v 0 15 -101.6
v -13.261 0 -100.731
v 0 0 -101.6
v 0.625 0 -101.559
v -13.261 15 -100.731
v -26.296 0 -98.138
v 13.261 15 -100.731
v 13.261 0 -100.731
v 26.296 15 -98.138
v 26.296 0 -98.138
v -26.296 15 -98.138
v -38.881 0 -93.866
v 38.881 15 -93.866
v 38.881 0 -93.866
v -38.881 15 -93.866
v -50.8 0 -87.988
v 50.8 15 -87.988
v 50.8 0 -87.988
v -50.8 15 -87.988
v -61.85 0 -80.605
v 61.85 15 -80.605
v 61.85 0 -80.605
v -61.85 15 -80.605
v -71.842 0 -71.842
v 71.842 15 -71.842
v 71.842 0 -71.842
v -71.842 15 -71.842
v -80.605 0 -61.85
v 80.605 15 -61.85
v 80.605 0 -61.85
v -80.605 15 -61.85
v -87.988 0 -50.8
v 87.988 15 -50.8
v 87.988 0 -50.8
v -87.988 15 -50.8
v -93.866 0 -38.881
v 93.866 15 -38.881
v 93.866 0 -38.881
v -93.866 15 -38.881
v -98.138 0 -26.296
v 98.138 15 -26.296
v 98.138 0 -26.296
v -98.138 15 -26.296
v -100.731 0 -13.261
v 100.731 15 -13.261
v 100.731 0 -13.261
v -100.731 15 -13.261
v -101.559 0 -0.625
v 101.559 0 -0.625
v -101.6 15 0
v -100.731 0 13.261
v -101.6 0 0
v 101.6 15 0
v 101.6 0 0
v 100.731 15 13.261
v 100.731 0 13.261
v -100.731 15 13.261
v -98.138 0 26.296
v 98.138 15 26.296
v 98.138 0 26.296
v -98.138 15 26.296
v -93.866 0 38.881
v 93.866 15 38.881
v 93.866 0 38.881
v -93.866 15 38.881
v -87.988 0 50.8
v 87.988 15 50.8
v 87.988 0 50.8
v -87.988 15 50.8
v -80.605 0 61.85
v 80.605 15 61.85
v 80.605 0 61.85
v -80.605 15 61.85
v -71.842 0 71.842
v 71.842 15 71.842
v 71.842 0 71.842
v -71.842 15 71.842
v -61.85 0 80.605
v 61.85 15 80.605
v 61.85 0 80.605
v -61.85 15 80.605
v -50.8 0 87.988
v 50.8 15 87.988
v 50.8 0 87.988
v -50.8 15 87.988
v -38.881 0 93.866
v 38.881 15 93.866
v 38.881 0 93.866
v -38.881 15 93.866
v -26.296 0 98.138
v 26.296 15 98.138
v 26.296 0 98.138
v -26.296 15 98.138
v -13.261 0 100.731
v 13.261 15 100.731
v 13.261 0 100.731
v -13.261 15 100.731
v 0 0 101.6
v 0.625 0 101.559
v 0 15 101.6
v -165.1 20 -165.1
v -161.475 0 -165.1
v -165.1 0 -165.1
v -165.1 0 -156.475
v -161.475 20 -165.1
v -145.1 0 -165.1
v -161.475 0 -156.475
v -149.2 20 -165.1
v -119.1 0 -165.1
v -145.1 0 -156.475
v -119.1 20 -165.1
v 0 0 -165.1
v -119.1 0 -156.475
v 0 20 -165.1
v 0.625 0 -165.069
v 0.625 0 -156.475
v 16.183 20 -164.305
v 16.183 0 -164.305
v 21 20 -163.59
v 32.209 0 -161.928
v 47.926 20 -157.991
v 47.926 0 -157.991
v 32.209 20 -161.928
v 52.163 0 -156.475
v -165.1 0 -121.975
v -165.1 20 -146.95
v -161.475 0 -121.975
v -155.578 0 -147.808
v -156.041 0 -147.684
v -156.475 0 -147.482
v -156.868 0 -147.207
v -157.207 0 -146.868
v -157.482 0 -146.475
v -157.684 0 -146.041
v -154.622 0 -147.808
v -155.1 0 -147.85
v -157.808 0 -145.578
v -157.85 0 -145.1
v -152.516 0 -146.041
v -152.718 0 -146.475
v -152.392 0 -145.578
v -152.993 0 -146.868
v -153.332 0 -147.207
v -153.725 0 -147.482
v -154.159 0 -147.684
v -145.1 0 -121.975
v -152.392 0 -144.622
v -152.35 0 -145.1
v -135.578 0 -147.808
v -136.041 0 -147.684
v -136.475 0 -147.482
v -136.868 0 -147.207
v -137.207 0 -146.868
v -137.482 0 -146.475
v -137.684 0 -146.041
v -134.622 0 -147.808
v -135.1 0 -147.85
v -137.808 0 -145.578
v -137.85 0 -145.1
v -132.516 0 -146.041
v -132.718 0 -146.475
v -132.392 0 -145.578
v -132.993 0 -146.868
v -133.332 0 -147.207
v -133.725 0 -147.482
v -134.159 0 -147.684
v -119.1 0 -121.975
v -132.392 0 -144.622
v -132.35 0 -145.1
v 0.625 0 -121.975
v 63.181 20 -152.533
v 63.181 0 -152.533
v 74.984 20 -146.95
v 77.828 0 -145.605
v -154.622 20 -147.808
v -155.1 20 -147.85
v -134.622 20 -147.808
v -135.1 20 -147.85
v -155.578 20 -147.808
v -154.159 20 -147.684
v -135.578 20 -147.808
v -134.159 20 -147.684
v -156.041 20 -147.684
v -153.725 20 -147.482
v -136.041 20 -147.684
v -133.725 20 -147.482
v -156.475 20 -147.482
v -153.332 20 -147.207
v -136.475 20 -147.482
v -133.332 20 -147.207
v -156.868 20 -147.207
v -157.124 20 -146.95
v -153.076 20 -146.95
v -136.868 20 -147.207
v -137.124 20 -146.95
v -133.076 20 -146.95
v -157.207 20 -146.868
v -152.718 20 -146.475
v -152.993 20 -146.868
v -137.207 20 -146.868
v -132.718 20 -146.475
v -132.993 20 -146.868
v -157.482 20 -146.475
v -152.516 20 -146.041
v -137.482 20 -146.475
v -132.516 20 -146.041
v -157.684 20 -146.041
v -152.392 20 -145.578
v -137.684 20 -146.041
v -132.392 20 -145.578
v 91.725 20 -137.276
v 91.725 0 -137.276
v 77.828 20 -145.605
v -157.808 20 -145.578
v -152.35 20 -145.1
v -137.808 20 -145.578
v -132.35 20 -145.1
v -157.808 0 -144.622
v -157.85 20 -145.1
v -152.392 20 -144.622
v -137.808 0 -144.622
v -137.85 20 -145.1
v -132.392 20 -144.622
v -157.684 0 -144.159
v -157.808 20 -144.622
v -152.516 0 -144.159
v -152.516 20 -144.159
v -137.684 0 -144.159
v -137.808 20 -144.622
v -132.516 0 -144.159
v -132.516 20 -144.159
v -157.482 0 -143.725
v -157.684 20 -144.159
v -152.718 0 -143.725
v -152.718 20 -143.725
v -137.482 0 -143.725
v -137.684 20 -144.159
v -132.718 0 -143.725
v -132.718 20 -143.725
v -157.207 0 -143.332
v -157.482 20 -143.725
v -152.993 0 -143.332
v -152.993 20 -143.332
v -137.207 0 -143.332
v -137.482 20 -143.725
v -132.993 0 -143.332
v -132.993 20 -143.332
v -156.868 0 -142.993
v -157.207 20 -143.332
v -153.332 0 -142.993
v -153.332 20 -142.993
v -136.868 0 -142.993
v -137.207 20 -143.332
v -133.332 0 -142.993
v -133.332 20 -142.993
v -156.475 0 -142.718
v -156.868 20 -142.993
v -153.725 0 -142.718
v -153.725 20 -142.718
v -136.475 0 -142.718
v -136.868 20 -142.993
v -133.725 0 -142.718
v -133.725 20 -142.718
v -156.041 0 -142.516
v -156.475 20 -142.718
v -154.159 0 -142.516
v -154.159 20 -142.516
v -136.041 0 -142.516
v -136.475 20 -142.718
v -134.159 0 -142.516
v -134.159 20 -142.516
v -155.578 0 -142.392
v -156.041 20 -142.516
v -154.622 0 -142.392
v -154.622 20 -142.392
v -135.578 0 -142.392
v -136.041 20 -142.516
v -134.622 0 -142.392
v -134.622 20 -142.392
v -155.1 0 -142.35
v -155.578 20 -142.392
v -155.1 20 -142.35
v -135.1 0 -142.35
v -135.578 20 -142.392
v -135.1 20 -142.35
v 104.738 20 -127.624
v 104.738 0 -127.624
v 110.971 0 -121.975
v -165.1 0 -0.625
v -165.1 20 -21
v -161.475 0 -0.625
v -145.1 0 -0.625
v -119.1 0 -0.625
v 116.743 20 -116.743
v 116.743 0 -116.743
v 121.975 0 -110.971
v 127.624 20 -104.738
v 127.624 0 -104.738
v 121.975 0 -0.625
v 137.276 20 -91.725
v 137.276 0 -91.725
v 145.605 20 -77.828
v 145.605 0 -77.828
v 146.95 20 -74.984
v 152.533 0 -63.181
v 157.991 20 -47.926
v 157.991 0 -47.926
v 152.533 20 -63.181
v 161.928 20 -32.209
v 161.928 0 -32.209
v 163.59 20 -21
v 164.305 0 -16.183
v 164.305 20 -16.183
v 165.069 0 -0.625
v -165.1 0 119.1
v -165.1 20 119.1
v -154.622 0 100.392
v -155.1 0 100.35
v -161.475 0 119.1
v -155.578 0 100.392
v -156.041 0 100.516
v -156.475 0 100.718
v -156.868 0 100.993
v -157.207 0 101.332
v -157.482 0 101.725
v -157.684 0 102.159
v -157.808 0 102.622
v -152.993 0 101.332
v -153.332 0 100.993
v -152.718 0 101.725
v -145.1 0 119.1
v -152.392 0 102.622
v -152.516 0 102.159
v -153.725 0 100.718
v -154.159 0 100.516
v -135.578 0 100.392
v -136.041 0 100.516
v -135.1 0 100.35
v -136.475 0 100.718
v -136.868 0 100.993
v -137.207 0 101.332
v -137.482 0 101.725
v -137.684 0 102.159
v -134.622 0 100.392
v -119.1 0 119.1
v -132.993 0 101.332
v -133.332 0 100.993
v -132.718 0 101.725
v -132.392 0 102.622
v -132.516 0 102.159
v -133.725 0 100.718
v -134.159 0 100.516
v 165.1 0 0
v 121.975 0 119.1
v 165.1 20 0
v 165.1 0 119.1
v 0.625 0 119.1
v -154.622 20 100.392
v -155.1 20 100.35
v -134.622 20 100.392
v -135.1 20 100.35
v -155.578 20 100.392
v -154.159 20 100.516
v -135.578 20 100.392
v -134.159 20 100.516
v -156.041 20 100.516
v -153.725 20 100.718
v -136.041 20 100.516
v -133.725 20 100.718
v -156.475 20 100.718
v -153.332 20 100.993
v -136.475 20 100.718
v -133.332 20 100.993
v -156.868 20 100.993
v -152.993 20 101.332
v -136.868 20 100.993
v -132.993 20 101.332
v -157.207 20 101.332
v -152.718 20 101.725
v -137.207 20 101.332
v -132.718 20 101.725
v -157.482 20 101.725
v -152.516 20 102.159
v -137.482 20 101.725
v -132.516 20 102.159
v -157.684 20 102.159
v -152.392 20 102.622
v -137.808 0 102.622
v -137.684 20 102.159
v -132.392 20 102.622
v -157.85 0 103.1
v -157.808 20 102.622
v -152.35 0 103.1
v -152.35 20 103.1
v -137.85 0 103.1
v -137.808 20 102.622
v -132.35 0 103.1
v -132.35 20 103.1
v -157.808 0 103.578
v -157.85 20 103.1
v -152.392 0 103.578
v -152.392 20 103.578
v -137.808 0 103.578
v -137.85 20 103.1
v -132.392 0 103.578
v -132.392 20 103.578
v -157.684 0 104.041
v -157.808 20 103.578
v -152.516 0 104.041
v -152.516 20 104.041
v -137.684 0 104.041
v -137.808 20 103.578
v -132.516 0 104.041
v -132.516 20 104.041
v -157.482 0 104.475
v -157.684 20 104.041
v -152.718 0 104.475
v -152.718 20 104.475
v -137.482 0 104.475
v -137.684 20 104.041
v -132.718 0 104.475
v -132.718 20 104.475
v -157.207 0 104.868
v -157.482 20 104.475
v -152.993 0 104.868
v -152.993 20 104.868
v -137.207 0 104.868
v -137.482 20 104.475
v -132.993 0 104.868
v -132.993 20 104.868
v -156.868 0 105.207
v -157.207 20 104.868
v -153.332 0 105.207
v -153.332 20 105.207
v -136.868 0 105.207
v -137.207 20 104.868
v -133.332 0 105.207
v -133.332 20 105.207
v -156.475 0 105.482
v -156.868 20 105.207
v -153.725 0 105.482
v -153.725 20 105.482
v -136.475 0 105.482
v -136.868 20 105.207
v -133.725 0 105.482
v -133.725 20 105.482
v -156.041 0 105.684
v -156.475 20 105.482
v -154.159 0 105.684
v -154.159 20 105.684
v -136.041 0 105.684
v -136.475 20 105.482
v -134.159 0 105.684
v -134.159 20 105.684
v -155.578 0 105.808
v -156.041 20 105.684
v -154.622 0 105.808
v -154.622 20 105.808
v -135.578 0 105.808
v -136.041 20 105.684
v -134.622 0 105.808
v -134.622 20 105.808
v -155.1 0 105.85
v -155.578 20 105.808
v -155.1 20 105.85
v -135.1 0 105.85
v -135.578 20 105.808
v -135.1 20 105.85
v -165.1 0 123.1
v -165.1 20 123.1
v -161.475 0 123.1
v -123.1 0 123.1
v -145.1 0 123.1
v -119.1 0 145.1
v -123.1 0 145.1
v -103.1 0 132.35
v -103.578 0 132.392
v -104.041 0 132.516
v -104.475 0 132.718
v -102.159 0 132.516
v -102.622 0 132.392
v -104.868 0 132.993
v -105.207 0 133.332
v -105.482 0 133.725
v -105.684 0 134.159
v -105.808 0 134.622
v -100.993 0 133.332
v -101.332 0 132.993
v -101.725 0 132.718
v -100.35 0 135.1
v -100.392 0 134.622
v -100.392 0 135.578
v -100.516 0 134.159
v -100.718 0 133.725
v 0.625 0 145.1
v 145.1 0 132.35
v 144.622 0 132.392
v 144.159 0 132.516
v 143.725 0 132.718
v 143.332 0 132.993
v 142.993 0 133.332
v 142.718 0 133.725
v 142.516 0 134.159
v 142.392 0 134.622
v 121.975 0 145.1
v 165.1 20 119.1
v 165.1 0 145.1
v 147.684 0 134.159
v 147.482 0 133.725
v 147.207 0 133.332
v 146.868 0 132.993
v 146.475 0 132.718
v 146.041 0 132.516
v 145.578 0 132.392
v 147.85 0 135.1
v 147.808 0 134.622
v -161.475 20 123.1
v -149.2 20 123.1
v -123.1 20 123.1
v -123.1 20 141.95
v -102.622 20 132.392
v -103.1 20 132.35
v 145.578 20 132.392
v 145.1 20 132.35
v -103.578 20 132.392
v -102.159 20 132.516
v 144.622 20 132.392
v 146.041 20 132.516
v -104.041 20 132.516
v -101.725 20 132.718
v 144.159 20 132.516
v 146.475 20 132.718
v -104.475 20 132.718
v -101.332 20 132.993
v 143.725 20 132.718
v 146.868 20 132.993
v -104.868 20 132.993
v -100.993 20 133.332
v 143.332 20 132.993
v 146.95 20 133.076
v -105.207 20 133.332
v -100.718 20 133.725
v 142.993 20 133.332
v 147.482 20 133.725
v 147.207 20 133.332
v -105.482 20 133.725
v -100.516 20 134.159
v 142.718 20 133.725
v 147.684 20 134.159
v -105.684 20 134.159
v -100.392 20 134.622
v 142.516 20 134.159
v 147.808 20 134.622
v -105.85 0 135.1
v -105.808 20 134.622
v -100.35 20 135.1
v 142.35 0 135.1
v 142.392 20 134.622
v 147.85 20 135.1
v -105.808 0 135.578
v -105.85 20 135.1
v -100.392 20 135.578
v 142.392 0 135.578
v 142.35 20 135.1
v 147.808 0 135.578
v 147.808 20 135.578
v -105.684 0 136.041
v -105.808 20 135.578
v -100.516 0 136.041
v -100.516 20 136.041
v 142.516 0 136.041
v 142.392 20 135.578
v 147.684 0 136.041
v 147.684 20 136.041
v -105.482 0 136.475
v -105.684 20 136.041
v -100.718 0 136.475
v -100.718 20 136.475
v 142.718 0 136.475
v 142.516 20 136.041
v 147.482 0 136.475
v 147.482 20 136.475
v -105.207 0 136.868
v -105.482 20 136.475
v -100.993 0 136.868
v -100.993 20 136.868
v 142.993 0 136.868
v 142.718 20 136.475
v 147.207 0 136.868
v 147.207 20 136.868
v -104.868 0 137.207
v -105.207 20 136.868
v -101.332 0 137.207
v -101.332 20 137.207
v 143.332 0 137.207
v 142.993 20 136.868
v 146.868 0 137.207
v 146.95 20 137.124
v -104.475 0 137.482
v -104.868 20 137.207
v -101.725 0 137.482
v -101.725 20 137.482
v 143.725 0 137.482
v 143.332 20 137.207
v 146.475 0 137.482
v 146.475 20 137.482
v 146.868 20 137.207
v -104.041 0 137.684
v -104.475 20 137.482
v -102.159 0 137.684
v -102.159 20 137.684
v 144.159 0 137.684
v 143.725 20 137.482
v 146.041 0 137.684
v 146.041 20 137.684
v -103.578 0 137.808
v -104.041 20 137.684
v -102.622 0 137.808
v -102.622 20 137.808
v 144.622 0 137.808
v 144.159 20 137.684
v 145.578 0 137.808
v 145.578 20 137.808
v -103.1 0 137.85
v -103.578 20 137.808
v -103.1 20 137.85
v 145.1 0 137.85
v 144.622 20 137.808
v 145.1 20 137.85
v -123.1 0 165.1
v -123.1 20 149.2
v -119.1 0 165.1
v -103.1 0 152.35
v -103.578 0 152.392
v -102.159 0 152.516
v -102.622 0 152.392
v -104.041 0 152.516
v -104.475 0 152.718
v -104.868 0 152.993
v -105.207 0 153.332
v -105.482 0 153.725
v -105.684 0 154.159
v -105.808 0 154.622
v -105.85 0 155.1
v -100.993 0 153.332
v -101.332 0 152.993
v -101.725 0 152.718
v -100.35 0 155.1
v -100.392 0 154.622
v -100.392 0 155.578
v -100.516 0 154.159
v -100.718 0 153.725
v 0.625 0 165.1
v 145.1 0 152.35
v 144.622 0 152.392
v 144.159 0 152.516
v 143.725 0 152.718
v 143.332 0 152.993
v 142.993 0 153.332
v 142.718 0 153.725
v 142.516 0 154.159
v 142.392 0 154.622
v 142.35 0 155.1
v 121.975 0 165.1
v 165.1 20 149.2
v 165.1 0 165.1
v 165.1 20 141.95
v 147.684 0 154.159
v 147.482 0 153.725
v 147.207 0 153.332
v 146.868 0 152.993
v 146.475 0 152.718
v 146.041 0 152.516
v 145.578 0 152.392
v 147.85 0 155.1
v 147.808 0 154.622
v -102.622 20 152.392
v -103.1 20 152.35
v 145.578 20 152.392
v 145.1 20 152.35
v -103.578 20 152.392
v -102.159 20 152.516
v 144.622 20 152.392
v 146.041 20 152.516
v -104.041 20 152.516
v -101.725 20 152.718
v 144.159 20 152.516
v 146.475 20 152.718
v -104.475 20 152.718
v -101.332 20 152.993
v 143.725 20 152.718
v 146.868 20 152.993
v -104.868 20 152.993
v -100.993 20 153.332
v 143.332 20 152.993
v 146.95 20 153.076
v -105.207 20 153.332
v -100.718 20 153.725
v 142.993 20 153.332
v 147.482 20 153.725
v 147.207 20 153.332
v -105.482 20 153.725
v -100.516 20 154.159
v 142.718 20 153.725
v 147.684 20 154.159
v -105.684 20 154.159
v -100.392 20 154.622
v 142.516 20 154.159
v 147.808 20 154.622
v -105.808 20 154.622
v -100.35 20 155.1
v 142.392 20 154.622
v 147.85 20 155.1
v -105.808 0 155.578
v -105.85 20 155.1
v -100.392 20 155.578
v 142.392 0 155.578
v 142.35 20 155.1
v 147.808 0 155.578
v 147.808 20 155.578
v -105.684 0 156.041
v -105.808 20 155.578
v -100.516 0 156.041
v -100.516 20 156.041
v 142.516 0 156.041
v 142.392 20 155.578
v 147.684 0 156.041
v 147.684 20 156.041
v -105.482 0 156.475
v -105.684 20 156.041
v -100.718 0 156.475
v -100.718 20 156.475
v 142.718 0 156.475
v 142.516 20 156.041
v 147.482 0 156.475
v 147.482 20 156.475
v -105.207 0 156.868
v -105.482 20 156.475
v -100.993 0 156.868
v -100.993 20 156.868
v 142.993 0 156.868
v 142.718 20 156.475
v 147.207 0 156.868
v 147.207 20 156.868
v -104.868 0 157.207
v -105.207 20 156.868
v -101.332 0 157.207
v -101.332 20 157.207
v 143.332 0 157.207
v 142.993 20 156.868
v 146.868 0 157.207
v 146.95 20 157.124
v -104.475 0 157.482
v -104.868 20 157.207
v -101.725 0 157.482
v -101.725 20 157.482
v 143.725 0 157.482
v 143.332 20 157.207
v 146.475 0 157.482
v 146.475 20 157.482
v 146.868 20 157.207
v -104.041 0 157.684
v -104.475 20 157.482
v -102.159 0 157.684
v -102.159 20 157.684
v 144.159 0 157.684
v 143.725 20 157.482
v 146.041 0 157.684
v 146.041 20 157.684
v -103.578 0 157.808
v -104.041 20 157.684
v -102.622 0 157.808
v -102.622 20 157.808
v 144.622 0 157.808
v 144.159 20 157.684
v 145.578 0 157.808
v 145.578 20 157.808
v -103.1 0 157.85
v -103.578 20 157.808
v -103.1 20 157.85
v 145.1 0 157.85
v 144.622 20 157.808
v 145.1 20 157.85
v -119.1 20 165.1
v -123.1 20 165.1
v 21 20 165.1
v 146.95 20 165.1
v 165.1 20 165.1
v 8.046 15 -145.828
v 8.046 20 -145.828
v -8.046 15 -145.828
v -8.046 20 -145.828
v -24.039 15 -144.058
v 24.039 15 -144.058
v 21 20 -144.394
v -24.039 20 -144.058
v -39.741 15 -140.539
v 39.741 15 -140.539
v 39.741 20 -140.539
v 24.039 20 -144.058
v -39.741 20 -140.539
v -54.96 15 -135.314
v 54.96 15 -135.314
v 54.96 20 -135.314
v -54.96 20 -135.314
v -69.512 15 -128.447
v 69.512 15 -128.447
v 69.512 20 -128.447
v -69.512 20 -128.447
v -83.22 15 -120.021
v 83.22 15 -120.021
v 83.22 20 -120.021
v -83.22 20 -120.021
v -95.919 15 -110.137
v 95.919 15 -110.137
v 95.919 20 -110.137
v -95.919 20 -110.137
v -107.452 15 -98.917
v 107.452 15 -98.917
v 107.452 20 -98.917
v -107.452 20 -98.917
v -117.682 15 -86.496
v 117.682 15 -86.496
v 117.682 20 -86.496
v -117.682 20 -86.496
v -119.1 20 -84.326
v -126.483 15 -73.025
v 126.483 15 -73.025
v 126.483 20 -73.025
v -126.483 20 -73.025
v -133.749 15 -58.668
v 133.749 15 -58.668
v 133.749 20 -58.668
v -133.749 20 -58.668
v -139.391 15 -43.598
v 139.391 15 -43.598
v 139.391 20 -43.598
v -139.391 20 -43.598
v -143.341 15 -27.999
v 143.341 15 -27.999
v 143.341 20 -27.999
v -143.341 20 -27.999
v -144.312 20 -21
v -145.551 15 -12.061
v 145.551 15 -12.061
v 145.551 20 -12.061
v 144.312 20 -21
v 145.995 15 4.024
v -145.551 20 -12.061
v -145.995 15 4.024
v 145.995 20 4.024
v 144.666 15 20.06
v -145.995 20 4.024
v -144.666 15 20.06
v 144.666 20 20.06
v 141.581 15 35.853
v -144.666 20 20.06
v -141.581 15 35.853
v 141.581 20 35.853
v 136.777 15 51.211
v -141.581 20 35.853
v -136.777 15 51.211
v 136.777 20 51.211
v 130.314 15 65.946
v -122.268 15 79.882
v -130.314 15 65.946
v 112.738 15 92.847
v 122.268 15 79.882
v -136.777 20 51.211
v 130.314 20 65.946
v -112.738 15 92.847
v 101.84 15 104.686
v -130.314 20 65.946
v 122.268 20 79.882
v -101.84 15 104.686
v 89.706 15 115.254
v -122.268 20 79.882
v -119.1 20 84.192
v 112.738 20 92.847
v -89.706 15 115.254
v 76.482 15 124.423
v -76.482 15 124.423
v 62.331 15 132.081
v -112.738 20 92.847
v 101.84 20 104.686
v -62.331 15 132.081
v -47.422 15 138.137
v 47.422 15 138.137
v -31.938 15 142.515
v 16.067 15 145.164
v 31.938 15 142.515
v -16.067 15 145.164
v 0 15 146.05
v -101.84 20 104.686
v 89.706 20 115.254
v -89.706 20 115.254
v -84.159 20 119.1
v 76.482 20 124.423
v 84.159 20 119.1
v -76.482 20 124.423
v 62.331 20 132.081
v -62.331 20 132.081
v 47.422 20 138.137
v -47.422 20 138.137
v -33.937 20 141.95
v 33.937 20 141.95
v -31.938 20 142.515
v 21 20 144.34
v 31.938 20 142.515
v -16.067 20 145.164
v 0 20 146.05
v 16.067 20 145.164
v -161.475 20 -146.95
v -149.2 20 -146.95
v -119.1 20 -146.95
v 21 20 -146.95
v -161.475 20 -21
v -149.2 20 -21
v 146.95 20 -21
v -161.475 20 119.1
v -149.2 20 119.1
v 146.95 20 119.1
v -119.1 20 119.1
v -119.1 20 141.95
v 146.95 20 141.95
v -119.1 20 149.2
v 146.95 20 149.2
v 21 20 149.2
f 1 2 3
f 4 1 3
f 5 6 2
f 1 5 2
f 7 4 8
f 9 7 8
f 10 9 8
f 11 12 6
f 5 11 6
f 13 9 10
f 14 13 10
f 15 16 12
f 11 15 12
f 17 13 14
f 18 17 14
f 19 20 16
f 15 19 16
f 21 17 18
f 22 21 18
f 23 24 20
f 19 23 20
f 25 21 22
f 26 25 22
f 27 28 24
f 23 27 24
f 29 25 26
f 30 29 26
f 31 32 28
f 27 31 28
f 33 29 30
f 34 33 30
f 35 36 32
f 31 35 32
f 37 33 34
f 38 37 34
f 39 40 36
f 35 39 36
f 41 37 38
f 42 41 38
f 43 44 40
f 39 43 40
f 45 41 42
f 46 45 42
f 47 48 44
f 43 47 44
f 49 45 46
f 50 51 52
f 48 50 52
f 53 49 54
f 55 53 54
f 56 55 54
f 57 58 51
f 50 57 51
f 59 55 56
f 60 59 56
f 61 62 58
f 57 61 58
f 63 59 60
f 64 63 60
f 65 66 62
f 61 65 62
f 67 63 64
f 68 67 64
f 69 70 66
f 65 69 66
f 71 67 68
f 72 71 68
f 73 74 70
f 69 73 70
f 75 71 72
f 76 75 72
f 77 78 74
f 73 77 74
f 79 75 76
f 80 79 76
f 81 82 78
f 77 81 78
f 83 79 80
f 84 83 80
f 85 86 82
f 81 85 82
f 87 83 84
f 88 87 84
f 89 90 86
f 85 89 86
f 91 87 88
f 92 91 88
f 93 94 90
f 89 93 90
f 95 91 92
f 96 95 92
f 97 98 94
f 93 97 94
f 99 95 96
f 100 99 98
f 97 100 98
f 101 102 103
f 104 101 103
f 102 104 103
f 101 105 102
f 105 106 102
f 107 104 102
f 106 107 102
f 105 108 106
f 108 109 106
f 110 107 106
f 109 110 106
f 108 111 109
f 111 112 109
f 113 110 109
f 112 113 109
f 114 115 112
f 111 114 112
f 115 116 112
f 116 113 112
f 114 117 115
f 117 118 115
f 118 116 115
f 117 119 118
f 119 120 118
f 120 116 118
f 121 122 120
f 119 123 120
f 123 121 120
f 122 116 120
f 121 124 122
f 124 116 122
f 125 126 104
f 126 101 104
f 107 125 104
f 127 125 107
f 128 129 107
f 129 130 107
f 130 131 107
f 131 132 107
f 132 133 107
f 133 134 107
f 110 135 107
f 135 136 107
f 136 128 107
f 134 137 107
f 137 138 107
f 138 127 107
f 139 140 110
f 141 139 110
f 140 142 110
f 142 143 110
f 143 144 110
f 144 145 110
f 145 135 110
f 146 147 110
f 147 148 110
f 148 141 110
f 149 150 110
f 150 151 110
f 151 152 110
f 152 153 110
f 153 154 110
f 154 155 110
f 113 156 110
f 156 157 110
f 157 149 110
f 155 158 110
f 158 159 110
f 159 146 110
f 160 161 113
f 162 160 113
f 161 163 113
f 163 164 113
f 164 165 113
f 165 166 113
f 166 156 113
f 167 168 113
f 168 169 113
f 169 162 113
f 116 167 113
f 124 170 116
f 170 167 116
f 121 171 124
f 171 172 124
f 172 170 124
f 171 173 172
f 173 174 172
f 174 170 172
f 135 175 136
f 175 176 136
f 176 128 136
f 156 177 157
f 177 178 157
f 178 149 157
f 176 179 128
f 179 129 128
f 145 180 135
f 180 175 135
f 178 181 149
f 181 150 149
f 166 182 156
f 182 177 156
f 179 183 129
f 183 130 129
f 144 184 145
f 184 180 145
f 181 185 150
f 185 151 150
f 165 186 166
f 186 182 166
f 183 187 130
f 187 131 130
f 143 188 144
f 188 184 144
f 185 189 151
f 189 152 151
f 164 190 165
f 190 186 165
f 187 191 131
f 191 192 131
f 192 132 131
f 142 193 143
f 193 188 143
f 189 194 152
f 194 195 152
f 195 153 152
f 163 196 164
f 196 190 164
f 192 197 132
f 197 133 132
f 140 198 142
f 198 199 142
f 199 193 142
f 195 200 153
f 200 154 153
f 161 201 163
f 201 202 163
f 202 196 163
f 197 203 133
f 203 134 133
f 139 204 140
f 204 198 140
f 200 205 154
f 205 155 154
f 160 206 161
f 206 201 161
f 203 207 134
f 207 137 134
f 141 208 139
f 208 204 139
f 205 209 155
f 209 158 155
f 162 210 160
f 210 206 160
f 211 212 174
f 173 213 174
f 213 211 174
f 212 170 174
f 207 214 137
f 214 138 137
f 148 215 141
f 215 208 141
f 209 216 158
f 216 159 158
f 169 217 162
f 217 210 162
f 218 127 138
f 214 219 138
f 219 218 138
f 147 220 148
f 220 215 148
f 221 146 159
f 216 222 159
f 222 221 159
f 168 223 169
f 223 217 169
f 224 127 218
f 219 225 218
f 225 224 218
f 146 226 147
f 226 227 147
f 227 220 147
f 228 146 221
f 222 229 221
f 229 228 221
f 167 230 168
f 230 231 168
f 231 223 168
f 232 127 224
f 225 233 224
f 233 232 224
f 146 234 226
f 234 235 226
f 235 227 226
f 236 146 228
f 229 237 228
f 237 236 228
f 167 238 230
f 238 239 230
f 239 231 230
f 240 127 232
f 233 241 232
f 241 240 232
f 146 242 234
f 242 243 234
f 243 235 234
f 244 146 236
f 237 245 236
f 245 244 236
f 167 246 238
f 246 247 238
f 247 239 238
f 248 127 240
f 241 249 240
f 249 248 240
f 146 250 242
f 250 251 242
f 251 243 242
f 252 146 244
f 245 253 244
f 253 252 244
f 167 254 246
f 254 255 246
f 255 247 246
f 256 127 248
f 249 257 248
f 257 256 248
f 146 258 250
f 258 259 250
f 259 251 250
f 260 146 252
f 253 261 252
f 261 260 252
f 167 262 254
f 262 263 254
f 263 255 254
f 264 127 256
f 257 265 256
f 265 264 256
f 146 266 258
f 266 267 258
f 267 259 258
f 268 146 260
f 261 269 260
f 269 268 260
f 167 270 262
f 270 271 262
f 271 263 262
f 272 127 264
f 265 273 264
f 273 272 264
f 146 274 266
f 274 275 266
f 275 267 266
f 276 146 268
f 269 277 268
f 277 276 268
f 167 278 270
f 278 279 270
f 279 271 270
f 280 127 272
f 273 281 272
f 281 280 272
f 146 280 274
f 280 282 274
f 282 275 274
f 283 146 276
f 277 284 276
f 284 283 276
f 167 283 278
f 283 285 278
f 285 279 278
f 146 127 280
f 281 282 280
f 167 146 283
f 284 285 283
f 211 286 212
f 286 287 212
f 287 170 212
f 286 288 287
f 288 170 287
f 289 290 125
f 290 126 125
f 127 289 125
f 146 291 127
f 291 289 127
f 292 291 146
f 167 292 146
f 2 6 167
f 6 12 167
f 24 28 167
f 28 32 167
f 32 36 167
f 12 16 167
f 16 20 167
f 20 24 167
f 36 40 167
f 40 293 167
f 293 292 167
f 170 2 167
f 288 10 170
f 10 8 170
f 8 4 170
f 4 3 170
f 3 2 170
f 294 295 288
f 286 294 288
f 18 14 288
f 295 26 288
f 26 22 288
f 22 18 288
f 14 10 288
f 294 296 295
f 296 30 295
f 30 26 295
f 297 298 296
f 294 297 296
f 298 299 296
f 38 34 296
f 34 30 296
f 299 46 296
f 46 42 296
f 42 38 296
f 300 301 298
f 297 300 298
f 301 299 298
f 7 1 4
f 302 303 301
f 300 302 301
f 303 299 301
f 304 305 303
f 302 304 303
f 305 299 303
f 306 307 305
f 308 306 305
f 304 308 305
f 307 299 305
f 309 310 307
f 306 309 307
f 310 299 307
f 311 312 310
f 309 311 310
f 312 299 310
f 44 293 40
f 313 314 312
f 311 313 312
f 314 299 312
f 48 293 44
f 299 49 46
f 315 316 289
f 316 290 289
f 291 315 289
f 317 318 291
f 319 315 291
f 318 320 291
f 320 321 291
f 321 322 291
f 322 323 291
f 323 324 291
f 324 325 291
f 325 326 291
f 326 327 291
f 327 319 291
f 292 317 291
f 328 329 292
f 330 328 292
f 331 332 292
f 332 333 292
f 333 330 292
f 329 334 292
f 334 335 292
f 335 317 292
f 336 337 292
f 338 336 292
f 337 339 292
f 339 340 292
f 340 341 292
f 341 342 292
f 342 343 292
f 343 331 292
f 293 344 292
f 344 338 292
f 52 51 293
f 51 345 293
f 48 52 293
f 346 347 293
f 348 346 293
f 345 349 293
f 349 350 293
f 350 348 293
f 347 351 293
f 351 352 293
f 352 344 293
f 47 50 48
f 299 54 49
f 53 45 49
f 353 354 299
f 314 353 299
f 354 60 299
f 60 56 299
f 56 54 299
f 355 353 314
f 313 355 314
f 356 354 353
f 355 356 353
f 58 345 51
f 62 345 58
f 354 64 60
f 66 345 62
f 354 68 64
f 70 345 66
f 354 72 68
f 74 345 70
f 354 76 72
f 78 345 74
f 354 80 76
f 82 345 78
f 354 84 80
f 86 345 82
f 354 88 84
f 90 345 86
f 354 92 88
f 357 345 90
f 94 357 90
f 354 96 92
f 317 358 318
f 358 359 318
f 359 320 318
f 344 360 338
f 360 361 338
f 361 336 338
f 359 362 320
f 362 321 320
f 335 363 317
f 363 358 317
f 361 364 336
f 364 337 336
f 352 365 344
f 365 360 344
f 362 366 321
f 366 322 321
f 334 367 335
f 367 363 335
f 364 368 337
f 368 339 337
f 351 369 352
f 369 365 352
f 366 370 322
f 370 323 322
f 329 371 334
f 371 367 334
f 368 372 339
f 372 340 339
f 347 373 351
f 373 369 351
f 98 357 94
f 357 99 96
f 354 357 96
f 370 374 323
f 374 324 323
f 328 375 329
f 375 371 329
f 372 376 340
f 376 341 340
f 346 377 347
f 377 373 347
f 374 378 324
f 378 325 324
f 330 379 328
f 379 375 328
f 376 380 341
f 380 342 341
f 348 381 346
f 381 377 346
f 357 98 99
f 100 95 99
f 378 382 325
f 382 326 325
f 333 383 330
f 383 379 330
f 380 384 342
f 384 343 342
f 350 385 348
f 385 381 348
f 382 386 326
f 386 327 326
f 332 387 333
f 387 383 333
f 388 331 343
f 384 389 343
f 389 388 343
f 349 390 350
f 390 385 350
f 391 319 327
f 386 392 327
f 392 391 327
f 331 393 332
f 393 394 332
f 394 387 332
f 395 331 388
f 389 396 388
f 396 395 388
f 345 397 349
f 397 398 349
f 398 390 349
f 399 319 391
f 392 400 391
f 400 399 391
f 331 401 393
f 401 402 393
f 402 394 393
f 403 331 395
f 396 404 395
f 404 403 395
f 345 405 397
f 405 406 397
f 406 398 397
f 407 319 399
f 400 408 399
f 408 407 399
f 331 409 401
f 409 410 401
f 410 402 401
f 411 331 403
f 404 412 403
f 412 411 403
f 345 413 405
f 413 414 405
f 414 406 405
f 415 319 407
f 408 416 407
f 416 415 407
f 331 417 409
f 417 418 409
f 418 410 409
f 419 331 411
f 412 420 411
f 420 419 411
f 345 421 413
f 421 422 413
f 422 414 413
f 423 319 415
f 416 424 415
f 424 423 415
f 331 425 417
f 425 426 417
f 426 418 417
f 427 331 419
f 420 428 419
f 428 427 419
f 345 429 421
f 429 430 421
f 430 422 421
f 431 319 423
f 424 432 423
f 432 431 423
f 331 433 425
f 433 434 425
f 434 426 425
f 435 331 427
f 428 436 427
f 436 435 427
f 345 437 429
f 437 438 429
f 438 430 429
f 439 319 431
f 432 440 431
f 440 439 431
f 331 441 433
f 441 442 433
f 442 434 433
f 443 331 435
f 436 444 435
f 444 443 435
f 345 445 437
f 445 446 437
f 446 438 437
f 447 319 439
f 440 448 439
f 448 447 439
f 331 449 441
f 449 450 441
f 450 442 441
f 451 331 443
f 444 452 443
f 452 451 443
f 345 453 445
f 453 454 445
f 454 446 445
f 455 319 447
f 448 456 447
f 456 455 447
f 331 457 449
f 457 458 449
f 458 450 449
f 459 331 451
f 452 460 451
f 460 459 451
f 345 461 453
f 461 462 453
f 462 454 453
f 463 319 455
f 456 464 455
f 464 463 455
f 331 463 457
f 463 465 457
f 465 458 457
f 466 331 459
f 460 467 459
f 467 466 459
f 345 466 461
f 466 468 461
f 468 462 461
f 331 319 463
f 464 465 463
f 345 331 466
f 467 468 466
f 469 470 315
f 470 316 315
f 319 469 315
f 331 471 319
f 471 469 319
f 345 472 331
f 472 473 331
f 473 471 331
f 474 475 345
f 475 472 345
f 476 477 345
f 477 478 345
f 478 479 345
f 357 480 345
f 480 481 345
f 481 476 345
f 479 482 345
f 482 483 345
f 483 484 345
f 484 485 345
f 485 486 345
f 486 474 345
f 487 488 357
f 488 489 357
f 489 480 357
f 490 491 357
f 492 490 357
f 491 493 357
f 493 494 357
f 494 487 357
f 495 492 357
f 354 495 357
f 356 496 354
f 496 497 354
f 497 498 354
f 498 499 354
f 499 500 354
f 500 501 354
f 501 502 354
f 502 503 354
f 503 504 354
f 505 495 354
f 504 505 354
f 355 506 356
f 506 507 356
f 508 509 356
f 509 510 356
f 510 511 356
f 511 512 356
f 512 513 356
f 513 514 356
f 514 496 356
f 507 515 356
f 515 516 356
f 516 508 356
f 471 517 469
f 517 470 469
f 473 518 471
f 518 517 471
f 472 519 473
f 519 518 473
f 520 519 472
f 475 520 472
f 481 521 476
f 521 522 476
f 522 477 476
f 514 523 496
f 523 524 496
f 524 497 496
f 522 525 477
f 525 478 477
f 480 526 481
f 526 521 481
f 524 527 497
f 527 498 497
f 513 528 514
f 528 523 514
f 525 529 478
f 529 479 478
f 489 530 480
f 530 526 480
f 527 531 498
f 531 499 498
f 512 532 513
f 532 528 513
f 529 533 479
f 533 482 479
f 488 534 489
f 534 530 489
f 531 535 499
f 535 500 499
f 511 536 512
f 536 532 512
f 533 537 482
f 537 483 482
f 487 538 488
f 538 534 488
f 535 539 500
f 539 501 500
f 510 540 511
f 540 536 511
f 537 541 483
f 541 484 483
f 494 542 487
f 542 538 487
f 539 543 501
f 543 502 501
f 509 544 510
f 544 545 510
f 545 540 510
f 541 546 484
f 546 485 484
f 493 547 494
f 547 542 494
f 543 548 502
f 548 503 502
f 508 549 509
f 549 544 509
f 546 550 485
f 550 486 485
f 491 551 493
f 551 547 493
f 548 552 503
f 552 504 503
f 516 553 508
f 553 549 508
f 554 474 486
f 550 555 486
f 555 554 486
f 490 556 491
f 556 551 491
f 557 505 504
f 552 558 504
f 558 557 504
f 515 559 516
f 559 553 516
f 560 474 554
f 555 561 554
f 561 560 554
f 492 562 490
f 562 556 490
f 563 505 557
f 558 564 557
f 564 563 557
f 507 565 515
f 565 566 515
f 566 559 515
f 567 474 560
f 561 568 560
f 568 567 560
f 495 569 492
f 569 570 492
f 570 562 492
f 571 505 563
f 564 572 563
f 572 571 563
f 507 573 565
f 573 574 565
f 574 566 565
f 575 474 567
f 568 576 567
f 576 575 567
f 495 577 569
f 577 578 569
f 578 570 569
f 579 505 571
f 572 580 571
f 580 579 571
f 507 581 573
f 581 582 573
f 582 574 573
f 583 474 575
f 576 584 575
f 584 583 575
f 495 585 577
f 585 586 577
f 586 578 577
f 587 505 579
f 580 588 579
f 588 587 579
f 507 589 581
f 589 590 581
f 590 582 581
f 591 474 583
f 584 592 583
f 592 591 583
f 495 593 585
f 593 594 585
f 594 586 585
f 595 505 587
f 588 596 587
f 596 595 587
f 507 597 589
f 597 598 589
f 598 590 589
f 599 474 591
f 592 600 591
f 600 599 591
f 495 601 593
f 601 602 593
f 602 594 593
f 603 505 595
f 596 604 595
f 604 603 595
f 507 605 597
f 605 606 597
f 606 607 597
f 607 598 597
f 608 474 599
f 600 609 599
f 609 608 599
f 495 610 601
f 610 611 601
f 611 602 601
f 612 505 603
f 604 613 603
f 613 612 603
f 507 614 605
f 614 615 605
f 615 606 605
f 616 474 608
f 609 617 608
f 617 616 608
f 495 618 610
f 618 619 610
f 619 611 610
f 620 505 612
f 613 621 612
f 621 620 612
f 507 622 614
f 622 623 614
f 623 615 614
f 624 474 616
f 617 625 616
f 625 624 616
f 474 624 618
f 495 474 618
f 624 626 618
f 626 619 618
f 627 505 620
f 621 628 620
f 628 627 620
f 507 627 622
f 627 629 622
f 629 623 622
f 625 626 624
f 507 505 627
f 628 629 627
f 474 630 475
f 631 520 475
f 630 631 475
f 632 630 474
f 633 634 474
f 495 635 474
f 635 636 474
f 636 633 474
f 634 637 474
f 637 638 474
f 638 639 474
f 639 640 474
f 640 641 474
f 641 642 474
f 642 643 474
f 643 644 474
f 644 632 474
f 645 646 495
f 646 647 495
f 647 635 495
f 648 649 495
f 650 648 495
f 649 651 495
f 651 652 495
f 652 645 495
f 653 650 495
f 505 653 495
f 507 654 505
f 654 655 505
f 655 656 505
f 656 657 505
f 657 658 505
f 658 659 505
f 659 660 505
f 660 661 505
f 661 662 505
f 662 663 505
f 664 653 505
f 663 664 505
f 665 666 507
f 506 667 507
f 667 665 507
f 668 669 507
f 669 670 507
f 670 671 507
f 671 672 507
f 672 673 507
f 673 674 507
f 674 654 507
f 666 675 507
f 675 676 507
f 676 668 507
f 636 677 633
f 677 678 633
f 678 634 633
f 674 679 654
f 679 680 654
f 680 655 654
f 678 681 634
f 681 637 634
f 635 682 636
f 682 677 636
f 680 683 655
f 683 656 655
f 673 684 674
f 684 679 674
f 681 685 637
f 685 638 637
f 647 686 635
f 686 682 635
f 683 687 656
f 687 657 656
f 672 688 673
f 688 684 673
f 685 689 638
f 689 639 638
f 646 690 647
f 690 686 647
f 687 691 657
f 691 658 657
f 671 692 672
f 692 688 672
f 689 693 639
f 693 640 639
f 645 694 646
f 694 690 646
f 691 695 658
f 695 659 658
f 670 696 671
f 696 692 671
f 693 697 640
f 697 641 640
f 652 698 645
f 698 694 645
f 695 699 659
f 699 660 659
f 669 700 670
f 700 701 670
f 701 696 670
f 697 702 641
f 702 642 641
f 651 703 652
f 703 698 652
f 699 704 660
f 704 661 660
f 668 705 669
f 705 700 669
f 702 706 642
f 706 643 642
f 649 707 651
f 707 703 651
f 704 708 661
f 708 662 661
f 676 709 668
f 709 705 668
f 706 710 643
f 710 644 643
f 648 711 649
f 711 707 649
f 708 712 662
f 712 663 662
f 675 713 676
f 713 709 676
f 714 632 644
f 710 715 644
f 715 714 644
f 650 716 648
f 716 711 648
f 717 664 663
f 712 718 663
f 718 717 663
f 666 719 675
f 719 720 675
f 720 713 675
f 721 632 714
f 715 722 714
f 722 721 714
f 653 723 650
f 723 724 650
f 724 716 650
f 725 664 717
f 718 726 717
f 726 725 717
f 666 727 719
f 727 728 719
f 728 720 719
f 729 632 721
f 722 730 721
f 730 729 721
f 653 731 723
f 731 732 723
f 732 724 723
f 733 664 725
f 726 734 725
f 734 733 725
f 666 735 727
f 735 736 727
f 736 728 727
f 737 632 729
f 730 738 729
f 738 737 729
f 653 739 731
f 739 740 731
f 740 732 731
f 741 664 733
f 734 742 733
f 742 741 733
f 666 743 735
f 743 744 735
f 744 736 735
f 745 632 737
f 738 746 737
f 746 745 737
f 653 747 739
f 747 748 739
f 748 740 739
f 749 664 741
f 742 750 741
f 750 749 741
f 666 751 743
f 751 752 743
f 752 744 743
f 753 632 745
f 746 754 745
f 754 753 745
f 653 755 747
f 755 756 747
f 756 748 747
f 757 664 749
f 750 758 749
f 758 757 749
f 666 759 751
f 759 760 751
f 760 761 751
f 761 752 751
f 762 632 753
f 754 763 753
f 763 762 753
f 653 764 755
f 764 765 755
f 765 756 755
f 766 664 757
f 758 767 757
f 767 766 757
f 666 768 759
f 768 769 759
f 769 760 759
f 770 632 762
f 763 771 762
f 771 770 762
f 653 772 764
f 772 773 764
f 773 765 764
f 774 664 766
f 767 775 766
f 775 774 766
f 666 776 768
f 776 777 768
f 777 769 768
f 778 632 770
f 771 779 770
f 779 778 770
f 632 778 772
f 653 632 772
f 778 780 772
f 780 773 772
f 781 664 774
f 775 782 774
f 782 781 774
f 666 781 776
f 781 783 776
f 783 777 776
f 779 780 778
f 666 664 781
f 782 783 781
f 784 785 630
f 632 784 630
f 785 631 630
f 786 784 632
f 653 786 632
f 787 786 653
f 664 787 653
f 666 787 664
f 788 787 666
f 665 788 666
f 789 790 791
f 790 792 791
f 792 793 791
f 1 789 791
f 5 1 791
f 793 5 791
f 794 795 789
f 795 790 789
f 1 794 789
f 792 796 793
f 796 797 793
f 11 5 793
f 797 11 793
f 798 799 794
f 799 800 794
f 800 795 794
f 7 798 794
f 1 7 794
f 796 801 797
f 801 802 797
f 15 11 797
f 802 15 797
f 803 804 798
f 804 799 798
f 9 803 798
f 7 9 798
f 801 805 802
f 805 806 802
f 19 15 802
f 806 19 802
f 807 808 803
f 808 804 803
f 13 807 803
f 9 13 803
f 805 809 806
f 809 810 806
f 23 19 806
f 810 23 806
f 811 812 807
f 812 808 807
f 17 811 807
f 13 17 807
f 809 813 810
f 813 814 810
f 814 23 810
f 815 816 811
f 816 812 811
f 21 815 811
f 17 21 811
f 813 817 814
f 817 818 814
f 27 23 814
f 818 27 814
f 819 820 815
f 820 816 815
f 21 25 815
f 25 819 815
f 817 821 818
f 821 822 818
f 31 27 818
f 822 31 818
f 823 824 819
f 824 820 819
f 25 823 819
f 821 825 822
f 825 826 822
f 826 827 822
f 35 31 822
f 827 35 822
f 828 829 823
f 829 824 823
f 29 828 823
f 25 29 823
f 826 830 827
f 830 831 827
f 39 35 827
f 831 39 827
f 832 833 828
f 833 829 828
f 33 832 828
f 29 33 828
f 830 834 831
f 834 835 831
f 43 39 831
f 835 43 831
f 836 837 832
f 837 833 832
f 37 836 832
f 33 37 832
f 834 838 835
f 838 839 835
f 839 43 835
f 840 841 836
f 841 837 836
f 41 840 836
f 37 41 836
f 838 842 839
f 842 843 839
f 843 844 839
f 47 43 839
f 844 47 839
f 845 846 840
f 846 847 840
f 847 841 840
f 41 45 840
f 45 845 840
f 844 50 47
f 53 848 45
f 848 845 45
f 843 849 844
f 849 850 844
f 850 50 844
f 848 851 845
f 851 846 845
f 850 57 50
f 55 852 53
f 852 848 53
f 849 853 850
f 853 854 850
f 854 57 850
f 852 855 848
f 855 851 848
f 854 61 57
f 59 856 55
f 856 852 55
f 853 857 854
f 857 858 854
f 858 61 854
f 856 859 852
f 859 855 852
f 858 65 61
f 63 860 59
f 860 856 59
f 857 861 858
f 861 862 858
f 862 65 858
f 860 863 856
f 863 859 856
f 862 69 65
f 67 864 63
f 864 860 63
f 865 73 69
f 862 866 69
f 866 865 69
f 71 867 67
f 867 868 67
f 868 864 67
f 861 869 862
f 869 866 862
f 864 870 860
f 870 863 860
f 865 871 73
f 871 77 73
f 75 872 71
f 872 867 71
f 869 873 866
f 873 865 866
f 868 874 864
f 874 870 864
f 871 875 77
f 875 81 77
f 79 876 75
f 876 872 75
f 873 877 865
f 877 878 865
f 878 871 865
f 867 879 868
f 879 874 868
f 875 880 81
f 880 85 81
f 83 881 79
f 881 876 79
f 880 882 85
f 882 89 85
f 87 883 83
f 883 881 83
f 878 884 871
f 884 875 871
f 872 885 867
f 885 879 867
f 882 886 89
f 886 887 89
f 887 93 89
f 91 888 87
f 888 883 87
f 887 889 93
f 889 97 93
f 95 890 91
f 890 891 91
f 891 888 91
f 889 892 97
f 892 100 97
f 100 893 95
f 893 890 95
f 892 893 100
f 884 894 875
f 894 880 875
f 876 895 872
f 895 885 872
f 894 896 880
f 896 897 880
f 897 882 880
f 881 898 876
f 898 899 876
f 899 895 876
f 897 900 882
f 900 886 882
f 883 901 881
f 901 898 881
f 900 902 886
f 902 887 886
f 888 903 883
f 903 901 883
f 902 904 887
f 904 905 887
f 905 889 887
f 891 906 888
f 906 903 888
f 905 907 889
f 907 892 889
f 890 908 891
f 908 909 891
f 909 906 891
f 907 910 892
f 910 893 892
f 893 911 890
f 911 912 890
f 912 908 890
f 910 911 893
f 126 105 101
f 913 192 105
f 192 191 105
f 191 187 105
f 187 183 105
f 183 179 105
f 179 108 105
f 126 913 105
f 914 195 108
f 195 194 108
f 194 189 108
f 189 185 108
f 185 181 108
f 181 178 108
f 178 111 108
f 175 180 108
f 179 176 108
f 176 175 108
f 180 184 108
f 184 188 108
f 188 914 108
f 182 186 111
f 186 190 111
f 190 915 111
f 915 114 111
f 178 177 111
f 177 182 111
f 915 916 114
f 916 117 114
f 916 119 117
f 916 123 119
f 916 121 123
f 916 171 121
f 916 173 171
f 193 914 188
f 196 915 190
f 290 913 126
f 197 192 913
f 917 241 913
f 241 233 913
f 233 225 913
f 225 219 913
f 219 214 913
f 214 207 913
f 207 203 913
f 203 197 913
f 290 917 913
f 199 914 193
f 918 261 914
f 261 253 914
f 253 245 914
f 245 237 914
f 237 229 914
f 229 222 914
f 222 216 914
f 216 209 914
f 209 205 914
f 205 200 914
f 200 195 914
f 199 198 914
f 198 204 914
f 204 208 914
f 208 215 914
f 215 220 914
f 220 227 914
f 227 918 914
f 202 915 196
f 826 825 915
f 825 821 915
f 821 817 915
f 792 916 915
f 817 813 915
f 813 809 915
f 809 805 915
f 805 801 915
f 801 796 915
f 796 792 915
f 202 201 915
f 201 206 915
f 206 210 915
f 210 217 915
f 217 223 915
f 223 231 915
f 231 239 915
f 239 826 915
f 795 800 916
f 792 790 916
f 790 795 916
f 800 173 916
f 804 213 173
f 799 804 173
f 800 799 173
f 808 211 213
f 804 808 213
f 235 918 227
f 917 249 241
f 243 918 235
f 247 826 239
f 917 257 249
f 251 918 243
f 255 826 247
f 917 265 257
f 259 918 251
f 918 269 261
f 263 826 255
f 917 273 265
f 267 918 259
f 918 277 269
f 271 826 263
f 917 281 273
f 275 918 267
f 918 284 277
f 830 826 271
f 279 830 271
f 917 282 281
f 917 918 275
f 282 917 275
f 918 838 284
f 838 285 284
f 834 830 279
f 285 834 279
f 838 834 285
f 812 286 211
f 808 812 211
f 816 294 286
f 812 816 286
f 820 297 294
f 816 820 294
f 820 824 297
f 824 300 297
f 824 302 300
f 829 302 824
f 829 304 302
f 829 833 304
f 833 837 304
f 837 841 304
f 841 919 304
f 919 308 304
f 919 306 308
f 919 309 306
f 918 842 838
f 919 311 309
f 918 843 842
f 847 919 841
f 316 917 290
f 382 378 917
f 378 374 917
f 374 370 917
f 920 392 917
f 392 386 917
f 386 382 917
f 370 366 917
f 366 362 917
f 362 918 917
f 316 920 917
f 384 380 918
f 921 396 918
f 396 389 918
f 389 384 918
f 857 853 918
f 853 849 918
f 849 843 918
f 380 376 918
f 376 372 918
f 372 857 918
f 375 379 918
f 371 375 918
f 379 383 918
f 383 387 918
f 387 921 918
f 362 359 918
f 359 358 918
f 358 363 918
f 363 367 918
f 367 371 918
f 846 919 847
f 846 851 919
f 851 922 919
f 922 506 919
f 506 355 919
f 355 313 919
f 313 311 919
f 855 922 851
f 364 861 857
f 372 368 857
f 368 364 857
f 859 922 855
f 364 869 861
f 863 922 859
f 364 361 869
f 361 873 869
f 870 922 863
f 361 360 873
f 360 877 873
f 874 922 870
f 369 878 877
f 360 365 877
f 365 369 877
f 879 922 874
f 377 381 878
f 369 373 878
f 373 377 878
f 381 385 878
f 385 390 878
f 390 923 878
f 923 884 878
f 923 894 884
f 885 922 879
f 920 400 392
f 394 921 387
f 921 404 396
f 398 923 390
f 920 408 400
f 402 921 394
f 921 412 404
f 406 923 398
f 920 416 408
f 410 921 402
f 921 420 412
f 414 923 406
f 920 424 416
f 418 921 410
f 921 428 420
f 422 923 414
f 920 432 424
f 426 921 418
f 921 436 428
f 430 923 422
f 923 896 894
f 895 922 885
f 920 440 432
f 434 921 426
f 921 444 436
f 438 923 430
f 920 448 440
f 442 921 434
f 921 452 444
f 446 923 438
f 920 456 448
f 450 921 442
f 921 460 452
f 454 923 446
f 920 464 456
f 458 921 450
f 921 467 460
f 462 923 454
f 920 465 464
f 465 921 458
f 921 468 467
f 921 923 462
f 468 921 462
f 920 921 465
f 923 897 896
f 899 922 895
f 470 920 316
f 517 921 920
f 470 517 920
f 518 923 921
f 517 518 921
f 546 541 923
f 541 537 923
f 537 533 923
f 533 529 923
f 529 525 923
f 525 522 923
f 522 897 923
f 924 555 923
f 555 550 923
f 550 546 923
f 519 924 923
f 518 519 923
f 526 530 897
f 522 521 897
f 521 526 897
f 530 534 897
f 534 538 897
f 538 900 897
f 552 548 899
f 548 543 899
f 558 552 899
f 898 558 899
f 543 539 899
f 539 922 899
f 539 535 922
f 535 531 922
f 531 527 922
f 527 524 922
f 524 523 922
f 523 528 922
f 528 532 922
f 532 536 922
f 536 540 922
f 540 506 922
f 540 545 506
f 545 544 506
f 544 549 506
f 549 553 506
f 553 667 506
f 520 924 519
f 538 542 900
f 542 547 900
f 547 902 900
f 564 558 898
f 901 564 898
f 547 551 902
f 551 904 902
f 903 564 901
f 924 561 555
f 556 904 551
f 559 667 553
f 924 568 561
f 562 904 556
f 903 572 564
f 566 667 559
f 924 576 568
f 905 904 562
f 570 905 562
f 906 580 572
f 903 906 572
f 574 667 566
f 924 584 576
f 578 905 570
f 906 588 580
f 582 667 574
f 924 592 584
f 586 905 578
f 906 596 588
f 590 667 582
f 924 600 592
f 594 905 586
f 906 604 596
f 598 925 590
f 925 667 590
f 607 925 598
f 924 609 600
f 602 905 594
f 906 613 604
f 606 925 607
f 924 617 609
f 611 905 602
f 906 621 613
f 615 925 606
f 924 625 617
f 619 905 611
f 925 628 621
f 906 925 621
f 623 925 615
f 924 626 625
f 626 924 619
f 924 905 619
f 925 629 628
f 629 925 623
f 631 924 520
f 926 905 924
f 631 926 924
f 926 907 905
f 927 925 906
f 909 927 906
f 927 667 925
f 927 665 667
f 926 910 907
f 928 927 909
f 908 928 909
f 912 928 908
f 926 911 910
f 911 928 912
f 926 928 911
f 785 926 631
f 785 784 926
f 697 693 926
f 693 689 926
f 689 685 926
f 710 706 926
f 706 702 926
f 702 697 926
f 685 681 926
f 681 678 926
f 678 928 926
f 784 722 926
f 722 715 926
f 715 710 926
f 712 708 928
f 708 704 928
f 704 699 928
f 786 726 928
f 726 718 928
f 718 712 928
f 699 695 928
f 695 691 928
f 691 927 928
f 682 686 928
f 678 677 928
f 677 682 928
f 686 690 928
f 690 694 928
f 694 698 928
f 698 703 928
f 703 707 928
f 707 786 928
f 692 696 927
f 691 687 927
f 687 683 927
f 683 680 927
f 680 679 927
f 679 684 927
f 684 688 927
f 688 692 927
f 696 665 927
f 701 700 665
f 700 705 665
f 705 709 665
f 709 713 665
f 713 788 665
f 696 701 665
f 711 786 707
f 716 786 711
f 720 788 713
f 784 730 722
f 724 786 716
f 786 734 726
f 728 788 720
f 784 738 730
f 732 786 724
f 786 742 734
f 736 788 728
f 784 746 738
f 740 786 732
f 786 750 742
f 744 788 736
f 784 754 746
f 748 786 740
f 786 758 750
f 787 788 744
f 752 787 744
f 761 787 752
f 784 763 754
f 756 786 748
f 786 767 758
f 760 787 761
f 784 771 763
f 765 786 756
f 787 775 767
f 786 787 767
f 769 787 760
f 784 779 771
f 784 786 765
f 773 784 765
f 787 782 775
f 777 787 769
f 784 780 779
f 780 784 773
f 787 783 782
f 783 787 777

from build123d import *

# Parameters (mm, degrees)
BOSS_EXTRUDE1_DEPTH = 20
SKETCH2_R           = 146.05
CUT_EXTRUDE1_DEPTH  = 5
CUT_EXTRUDE2_REACH  = 235.968
SKETCH3_R           = 101.6
CUT_EXTRUDE3_REACH  = 236.342
SKETCH4_W           = 42
SKETCH4_H           = 42
CUT_EXTRUDE4_REACH  = 236.342
SKETCH5_R           = 2.75


with BuildPart() as part:
    # Sketch1 → Boss-Extrude1 (new body)
    with BuildSketch(Plane(origin=(0, 0, 0), x_dir=(1, 0, 0), z_dir=(0, 1, 0))):
        with BuildLine():
            Line((165.1, 0), (165.1, -165.1))
            Line((165.1, -165.1), (-165.1, -165.1))
            Line((-165.1, -165.1), (-165.1, 165.1))
            Line((-165.1, 165.1), (0, 165.1))
            ThreePointArc((0, 165.1), (116.743329574, 116.743329574), (165.1, 0))
        make_face()
    extrude(amount=BOSS_EXTRUDE1_DEPTH)

    # Sketch2 → Cut-Extrude1 (cut)
    with BuildSketch(Plane(origin=(0, 20, 0), x_dir=(1, 0, 0), z_dir=(0, 1, 0))):
        with Locations(Location((0, 0, 0), (0, 0, 270))):
            Circle(SKETCH2_R)
    extrude(amount=-CUT_EXTRUDE1_DEPTH, mode=Mode.SUBTRACT)

    # Sketch3 → Cut-Extrude2 (cut, up to next)
    with BuildSketch(Plane(origin=(0, 15, 0), x_dir=(1, 0, 0), z_dir=(0, 1, 0)), mode=Mode.PRIVATE) as cut_extrude2_sk1:
        with Locations(Location((0, 0, 0), (0, 0, 270))):
            Circle(SKETCH3_R)
    cut_extrude2_tool1 = extrude(cut_extrude2_sk1.sketch, amount=-CUT_EXTRUDE2_REACH, mode=Mode.PRIVATE) & part.part
    add(cut_extrude2_tool1.solids().sort_by_distance((0, 15, 0))[0], mode=Mode.SUBTRACT)

    # Sketch4 → Cut-Extrude3 (cut, up to next)
    with BuildSketch(Plane(origin=(0, 20, 0), x_dir=(1, 0, 0), z_dir=(0, 1, 0)), mode=Mode.PRIVATE) as cut_extrude3_sk1:
        with Locations((-144.1, -144.1)):
            Rectangle(SKETCH4_W, SKETCH4_H)
    cut_extrude3_tool1 = extrude(cut_extrude3_sk1.sketch, amount=-CUT_EXTRUDE3_REACH, mode=Mode.PRIVATE) & part.part
    add(cut_extrude3_tool1.solids().sort_by_distance((-144.1, 20, 144.1))[0], mode=Mode.SUBTRACT)

    # Sketch5 → Cut-Extrude4 (cut, up to next)
    with BuildSketch(Plane(origin=(0, 20, 0), x_dir=(1, 0, 0), z_dir=(0, 1, 0)), mode=Mode.PRIVATE) as cut_extrude4_sk1:
        with Locations(Location((-103.1, -135.1, 0), (0, 0, 270))):
            Circle(SKETCH5_R)
    cut_extrude4_tool1 = extrude(cut_extrude4_sk1.sketch, amount=-CUT_EXTRUDE4_REACH, mode=Mode.PRIVATE) & part.part
    # Sketch5 → Cut-Extrude4 (cut, up to next)
    with BuildSketch(Plane(origin=(0, 20, 0), x_dir=(1, 0, 0), z_dir=(0, 1, 0)), mode=Mode.PRIVATE) as cut_extrude4_sk2:
        with Locations(Location((145.1, -135.1, 0), (0, 0, 270))):
            Circle(SKETCH5_R)
    cut_extrude4_tool2 = extrude(cut_extrude4_sk2.sketch, amount=-CUT_EXTRUDE4_REACH, mode=Mode.PRIVATE) & part.part
    # Sketch5 → Cut-Extrude4 (cut, up to next)
    with BuildSketch(Plane(origin=(0, 20, 0), x_dir=(1, 0, 0), z_dir=(0, 1, 0)), mode=Mode.PRIVATE) as cut_extrude4_sk3:
        with Locations(Location((-103.1, -155.1, 0), (0, 0, 270))):
            Circle(SKETCH5_R)
    cut_extrude4_tool3 = extrude(cut_extrude4_sk3.sketch, amount=-CUT_EXTRUDE4_REACH, mode=Mode.PRIVATE) & part.part
    # Sketch5 → Cut-Extrude4 (cut, up to next)
    with BuildSketch(Plane(origin=(0, 20, 0), x_dir=(1, 0, 0), z_dir=(0, 1, 0)), mode=Mode.PRIVATE) as cut_extrude4_sk4:
        with Locations(Location((145.1, -155.1, 0), (0, 0, 270))):
            Circle(SKETCH5_R)
    cut_extrude4_tool4 = extrude(cut_extrude4_sk4.sketch, amount=-CUT_EXTRUDE4_REACH, mode=Mode.PRIVATE) & part.part
    # Sketch5 → Cut-Extrude4 (cut, up to next)
    with BuildSketch(Plane(origin=(0, 20, 0), x_dir=(1, 0, 0), z_dir=(0, 1, 0)), mode=Mode.PRIVATE) as cut_extrude4_sk5:
        with Locations(Location((-155.1, 145.1, 0), (0, 0, 270))):
            Circle(SKETCH5_R)
    cut_extrude4_tool5 = extrude(cut_extrude4_sk5.sketch, amount=-CUT_EXTRUDE4_REACH, mode=Mode.PRIVATE) & part.part
    # Sketch5 → Cut-Extrude4 (cut, up to next)
    with BuildSketch(Plane(origin=(0, 20, 0), x_dir=(1, 0, 0), z_dir=(0, 1, 0)), mode=Mode.PRIVATE) as cut_extrude4_sk6:
        with Locations(Location((-155.1, -103.1, 0), (0, 0, 270))):
            Circle(SKETCH5_R)
    cut_extrude4_tool6 = extrude(cut_extrude4_sk6.sketch, amount=-CUT_EXTRUDE4_REACH, mode=Mode.PRIVATE) & part.part
    # Sketch5 → Cut-Extrude4 (cut, up to next)
    with BuildSketch(Plane(origin=(0, 20, 0), x_dir=(1, 0, 0), z_dir=(0, 1, 0)), mode=Mode.PRIVATE) as cut_extrude4_sk7:
        with Locations(Location((-135.1, 145.1, 0), (0, 0, 270))):
            Circle(SKETCH5_R)
    cut_extrude4_tool7 = extrude(cut_extrude4_sk7.sketch, amount=-CUT_EXTRUDE4_REACH, mode=Mode.PRIVATE) & part.part
    # Sketch5 → Cut-Extrude4 (cut, up to next)
    with BuildSketch(Plane(origin=(0, 20, 0), x_dir=(1, 0, 0), z_dir=(0, 1, 0)), mode=Mode.PRIVATE) as cut_extrude4_sk8:
        with Locations(Location((-135.1, -103.1, 0), (0, 0, 270))):
            Circle(SKETCH5_R)
    cut_extrude4_tool8 = extrude(cut_extrude4_sk8.sketch, amount=-CUT_EXTRUDE4_REACH, mode=Mode.PRIVATE) & part.part
    add(cut_extrude4_tool1.solids().sort_by_distance((-103.1, 20, 135.1))[0], mode=Mode.SUBTRACT)
    add(cut_extrude4_tool2.solids().sort_by_distance((145.1, 20, 135.1))[0], mode=Mode.SUBTRACT)
    add(cut_extrude4_tool3.solids().sort_by_distance((-103.1, 20, 155.1))[0], mode=Mode.SUBTRACT)
    add(cut_extrude4_tool4.solids().sort_by_distance((145.1, 20, 155.1))[0], mode=Mode.SUBTRACT)
    add(cut_extrude4_tool5.solids().sort_by_distance((-155.1, 20, -145.1))[0], mode=Mode.SUBTRACT)
    add(cut_extrude4_tool6.solids().sort_by_distance((-155.1, 20, 103.1))[0], mode=Mode.SUBTRACT)
    add(cut_extrude4_tool7.solids().sort_by_distance((-135.1, 20, -145.1))[0], mode=Mode.SUBTRACT)
    add(cut_extrude4_tool8.solids().sort_by_distance((-135.1, 20, 103.1))[0], mode=Mode.SUBTRACT)


solid = part.part
